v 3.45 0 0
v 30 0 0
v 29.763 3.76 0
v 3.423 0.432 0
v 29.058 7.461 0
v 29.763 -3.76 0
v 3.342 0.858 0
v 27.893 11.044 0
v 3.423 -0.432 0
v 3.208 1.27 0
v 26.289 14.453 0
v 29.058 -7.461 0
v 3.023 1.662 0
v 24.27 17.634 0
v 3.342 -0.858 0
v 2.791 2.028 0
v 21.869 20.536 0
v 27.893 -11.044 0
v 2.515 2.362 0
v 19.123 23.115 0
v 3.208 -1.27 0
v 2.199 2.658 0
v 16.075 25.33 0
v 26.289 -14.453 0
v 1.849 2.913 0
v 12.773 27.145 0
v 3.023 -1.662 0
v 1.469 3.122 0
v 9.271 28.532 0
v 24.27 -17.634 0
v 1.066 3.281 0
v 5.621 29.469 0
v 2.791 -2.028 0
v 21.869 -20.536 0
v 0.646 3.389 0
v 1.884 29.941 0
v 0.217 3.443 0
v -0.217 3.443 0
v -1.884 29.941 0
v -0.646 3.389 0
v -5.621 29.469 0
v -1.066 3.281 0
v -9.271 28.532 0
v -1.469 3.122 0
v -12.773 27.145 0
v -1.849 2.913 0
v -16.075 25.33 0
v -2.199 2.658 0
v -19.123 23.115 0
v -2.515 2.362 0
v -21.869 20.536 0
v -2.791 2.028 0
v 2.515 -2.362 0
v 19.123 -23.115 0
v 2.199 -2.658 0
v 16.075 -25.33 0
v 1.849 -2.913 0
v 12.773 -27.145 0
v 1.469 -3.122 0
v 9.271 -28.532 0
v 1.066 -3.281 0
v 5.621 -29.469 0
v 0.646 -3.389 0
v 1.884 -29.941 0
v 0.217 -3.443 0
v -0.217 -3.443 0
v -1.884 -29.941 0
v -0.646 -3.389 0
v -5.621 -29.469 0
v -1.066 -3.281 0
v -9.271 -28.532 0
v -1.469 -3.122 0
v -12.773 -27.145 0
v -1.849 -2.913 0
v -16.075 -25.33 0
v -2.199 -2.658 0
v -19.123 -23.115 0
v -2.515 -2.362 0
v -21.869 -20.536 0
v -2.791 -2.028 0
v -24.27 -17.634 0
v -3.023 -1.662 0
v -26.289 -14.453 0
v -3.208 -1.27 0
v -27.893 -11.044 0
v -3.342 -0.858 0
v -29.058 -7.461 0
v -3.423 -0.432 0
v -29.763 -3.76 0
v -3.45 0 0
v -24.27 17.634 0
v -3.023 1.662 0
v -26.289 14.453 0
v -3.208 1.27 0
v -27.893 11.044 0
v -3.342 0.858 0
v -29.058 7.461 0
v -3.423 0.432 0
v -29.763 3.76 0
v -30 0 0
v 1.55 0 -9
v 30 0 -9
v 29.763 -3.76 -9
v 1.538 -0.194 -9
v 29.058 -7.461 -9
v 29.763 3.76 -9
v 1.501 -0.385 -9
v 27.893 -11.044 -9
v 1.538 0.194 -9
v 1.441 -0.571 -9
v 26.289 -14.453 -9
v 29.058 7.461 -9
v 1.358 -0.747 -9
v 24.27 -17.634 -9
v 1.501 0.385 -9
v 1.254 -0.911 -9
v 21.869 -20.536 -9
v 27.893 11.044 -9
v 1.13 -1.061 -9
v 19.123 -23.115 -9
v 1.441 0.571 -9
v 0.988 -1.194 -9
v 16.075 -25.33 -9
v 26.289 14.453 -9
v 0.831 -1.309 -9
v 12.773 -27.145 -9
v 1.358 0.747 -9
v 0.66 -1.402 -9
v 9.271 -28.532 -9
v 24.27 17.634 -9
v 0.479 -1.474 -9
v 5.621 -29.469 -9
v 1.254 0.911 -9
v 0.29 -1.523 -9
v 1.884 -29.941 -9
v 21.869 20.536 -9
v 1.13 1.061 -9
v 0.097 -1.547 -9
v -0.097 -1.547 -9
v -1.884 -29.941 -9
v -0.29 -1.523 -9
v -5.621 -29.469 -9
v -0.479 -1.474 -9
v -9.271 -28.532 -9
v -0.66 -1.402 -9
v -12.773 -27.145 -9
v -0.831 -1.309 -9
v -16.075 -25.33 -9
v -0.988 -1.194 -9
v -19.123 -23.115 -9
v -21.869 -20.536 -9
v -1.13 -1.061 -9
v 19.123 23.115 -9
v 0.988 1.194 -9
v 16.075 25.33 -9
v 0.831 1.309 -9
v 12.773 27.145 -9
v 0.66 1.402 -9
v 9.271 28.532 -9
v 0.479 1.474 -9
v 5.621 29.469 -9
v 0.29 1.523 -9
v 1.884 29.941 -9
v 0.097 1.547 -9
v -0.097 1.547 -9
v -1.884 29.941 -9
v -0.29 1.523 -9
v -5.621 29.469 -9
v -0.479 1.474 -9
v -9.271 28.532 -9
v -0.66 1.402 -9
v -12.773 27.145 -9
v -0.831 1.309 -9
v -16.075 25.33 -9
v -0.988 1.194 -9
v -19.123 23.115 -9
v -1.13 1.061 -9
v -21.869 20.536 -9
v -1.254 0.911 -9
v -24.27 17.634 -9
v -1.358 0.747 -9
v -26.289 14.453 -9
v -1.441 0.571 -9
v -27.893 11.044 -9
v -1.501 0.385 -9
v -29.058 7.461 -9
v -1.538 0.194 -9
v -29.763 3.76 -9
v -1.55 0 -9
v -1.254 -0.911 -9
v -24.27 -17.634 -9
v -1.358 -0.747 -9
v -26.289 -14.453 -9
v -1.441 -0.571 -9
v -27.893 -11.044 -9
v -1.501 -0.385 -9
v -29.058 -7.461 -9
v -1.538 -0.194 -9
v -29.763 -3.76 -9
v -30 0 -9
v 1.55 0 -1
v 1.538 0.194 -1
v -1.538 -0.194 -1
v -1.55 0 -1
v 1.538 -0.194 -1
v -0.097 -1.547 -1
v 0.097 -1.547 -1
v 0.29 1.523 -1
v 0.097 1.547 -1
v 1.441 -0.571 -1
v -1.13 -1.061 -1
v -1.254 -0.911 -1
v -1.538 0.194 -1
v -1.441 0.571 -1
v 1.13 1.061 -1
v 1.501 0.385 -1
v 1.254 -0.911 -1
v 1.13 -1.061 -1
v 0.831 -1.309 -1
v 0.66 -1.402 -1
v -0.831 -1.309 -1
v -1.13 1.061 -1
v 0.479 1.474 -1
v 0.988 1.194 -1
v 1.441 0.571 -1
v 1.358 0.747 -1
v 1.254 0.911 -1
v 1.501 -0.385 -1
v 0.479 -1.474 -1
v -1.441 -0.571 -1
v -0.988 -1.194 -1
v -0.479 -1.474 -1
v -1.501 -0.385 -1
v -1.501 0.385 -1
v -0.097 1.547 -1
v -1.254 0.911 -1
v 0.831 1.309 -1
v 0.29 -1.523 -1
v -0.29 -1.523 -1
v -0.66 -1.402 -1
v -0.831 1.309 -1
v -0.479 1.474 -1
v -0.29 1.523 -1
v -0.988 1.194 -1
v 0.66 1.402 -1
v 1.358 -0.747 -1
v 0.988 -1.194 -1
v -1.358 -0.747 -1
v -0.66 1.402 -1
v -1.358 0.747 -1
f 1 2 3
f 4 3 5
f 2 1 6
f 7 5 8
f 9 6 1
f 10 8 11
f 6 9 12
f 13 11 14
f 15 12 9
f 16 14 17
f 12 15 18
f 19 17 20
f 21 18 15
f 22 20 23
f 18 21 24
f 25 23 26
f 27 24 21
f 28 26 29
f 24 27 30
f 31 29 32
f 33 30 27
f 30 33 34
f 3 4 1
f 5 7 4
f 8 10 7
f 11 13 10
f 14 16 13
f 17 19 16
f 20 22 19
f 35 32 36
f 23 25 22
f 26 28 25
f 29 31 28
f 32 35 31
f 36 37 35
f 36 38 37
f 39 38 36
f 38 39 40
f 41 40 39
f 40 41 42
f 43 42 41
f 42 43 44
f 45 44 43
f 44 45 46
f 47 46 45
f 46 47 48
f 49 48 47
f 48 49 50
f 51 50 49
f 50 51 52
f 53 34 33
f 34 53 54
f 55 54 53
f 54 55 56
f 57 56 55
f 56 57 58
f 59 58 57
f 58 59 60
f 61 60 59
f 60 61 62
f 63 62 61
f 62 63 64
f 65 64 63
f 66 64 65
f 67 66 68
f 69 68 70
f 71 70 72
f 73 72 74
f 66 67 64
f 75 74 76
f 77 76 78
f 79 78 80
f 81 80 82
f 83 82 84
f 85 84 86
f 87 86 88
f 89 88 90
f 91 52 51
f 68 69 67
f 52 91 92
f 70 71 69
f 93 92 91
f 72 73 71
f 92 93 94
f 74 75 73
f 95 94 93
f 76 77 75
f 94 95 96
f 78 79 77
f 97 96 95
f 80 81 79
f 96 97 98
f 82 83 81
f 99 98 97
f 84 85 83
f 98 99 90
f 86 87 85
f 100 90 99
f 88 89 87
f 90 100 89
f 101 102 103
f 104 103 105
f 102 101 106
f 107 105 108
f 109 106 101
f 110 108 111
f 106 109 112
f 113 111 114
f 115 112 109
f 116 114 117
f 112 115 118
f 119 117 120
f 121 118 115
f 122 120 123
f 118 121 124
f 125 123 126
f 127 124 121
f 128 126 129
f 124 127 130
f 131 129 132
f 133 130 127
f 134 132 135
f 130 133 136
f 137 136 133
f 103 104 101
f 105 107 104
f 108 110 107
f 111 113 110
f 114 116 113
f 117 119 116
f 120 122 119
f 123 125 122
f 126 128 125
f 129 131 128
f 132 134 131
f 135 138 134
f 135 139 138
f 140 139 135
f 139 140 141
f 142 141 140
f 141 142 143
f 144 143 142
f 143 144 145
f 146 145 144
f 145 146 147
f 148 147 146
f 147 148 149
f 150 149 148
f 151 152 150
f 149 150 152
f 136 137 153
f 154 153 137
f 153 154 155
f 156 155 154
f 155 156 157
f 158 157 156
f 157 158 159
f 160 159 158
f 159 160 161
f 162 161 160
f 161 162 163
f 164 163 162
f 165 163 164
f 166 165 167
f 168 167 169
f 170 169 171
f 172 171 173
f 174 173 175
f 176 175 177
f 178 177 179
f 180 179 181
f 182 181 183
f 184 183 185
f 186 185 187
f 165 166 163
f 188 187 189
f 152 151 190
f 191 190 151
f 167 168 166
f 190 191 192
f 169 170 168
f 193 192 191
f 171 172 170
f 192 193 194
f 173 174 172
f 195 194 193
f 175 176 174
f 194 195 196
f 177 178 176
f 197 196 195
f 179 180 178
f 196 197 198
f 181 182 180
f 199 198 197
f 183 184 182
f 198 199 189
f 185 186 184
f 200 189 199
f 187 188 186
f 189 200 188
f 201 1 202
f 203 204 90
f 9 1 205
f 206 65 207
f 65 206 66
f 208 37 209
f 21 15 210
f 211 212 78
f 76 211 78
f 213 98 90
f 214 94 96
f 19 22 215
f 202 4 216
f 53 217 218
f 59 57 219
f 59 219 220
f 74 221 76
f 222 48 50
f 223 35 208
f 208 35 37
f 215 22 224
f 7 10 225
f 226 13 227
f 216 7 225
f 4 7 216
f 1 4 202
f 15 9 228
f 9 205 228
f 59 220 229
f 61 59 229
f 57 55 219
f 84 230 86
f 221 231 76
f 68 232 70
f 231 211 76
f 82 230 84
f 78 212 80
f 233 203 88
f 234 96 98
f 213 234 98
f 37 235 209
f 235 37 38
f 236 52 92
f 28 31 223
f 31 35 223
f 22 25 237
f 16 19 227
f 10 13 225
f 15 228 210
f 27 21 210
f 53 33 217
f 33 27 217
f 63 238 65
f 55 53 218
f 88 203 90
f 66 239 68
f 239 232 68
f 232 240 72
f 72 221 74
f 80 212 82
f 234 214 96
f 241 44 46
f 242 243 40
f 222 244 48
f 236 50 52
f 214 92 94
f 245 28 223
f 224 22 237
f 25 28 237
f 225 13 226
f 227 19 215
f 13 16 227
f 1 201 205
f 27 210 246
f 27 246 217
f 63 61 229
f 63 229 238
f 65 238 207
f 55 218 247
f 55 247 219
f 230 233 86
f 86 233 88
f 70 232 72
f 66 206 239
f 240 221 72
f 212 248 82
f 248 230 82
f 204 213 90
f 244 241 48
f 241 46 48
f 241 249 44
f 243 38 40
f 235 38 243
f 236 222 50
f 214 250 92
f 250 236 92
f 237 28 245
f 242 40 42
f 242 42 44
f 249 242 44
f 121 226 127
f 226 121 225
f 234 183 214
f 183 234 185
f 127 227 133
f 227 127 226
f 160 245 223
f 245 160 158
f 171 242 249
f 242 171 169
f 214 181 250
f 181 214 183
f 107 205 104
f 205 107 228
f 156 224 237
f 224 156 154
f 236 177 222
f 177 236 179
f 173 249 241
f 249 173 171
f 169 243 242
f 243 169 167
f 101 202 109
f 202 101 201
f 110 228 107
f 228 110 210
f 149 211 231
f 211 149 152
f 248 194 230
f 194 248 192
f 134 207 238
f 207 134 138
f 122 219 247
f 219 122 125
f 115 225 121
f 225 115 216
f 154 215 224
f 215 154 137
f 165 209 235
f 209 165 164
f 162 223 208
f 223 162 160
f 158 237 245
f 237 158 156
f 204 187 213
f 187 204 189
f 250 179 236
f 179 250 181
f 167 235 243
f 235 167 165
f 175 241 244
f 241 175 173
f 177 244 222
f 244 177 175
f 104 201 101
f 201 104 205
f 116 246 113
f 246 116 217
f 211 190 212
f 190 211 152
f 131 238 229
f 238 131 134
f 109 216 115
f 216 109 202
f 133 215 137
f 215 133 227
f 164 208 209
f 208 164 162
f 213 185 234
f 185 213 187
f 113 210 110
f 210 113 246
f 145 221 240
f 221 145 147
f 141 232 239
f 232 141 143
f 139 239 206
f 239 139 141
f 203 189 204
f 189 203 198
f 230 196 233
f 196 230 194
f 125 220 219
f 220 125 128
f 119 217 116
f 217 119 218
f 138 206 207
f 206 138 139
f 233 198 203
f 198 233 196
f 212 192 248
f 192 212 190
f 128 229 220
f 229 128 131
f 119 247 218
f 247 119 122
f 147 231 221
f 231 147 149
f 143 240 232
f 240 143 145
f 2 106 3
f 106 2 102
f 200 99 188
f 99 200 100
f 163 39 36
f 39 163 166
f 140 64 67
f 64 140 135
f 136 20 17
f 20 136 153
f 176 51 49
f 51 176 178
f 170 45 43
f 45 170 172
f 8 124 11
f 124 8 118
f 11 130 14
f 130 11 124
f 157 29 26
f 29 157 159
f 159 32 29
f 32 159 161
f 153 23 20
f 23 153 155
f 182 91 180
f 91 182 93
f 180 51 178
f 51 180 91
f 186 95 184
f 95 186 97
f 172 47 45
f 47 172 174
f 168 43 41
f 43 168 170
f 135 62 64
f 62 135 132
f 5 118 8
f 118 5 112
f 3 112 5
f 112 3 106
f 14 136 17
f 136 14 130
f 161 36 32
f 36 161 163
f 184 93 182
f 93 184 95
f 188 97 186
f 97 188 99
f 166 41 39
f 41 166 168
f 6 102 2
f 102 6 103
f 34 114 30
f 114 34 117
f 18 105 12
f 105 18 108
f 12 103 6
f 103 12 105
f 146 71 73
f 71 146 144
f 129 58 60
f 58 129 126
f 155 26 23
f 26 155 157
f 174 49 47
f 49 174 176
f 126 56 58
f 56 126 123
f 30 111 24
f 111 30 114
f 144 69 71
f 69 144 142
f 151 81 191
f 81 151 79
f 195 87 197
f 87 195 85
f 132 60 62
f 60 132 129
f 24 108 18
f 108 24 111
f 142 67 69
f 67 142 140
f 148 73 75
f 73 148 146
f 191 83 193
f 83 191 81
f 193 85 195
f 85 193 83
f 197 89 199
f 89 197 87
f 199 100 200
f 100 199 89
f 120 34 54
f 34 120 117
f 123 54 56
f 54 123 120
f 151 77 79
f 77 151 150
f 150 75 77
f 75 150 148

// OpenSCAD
$fn = 50;


difference() {
	union() {
		translate(v = [0, 0, -9.0000000000]) {
			cylinder(h = 9, r = 30.0000000000);
		}
	}
	union() {
		translate(v = [0, 0, 0]) {
			rotate(a = [0, 0, 0]) {
				difference() {
					union() {
						translate(v = [0, 0, -9.0000000000]) {
							cylinder(h = 9, r = 1.2500000000);
						}
						translate(v = [0, 0, -1.0000000000]) {
							cylinder(h = 1.0000000000, r1 = 1.5500000000, r2 = 3.4500000000);
						}
						translate(v = [0, 0, -9.0000000000]) {
							cylinder(h = 9, r = 1.5500000000);
						}
						translate(v = [0, 0, -9.0000000000]) {
							cylinder(h = 9, r = 1.2500000000);
						}
					}
					union();
				}
			}
		}
	}
}
